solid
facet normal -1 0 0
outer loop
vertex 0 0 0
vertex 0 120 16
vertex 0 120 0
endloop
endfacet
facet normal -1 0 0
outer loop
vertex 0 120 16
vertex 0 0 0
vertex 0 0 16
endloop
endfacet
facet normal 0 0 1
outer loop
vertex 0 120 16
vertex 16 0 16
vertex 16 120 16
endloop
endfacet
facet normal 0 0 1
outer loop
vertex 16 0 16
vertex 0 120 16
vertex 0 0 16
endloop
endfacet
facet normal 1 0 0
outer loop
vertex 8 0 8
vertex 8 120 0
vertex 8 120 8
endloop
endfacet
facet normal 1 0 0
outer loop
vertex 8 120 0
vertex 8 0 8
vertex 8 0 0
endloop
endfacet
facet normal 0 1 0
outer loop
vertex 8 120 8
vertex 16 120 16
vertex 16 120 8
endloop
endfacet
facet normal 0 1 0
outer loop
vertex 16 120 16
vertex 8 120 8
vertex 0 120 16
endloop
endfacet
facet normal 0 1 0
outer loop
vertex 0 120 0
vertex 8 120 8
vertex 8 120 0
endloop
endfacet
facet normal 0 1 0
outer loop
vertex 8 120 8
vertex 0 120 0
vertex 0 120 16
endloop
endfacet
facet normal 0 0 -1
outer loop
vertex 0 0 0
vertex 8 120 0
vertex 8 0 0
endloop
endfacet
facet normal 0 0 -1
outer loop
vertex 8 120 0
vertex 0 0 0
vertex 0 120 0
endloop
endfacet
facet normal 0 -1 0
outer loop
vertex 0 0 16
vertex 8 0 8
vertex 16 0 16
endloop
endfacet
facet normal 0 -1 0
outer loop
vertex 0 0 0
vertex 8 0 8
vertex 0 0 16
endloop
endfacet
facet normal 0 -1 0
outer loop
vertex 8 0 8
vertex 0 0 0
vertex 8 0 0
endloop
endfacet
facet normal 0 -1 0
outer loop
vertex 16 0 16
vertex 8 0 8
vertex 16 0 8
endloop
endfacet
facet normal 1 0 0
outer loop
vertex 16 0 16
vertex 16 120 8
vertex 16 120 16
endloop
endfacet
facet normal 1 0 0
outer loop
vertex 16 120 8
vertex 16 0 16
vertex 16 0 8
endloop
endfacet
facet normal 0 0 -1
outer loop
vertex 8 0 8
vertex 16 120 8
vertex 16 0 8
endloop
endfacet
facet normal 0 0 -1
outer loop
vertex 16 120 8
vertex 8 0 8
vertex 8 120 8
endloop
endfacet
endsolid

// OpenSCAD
// ipad dimensions. the wrapper will be bigger than this so it slides in.
ipad_width = 60;
ipad_height = 104;

// how big the frame itself will be
border_size = 8;

// nail hole info
nail_diameter = 4;
nail_angle = 6; // degrees


// side
cube([border_size, ipad_height + border_size * 2, border_size * 2]);

// ridge
translate([0, 0, border_size]) {
	cube([border_size * 2, ipad_height + border_size * 2, border_size]);
}
